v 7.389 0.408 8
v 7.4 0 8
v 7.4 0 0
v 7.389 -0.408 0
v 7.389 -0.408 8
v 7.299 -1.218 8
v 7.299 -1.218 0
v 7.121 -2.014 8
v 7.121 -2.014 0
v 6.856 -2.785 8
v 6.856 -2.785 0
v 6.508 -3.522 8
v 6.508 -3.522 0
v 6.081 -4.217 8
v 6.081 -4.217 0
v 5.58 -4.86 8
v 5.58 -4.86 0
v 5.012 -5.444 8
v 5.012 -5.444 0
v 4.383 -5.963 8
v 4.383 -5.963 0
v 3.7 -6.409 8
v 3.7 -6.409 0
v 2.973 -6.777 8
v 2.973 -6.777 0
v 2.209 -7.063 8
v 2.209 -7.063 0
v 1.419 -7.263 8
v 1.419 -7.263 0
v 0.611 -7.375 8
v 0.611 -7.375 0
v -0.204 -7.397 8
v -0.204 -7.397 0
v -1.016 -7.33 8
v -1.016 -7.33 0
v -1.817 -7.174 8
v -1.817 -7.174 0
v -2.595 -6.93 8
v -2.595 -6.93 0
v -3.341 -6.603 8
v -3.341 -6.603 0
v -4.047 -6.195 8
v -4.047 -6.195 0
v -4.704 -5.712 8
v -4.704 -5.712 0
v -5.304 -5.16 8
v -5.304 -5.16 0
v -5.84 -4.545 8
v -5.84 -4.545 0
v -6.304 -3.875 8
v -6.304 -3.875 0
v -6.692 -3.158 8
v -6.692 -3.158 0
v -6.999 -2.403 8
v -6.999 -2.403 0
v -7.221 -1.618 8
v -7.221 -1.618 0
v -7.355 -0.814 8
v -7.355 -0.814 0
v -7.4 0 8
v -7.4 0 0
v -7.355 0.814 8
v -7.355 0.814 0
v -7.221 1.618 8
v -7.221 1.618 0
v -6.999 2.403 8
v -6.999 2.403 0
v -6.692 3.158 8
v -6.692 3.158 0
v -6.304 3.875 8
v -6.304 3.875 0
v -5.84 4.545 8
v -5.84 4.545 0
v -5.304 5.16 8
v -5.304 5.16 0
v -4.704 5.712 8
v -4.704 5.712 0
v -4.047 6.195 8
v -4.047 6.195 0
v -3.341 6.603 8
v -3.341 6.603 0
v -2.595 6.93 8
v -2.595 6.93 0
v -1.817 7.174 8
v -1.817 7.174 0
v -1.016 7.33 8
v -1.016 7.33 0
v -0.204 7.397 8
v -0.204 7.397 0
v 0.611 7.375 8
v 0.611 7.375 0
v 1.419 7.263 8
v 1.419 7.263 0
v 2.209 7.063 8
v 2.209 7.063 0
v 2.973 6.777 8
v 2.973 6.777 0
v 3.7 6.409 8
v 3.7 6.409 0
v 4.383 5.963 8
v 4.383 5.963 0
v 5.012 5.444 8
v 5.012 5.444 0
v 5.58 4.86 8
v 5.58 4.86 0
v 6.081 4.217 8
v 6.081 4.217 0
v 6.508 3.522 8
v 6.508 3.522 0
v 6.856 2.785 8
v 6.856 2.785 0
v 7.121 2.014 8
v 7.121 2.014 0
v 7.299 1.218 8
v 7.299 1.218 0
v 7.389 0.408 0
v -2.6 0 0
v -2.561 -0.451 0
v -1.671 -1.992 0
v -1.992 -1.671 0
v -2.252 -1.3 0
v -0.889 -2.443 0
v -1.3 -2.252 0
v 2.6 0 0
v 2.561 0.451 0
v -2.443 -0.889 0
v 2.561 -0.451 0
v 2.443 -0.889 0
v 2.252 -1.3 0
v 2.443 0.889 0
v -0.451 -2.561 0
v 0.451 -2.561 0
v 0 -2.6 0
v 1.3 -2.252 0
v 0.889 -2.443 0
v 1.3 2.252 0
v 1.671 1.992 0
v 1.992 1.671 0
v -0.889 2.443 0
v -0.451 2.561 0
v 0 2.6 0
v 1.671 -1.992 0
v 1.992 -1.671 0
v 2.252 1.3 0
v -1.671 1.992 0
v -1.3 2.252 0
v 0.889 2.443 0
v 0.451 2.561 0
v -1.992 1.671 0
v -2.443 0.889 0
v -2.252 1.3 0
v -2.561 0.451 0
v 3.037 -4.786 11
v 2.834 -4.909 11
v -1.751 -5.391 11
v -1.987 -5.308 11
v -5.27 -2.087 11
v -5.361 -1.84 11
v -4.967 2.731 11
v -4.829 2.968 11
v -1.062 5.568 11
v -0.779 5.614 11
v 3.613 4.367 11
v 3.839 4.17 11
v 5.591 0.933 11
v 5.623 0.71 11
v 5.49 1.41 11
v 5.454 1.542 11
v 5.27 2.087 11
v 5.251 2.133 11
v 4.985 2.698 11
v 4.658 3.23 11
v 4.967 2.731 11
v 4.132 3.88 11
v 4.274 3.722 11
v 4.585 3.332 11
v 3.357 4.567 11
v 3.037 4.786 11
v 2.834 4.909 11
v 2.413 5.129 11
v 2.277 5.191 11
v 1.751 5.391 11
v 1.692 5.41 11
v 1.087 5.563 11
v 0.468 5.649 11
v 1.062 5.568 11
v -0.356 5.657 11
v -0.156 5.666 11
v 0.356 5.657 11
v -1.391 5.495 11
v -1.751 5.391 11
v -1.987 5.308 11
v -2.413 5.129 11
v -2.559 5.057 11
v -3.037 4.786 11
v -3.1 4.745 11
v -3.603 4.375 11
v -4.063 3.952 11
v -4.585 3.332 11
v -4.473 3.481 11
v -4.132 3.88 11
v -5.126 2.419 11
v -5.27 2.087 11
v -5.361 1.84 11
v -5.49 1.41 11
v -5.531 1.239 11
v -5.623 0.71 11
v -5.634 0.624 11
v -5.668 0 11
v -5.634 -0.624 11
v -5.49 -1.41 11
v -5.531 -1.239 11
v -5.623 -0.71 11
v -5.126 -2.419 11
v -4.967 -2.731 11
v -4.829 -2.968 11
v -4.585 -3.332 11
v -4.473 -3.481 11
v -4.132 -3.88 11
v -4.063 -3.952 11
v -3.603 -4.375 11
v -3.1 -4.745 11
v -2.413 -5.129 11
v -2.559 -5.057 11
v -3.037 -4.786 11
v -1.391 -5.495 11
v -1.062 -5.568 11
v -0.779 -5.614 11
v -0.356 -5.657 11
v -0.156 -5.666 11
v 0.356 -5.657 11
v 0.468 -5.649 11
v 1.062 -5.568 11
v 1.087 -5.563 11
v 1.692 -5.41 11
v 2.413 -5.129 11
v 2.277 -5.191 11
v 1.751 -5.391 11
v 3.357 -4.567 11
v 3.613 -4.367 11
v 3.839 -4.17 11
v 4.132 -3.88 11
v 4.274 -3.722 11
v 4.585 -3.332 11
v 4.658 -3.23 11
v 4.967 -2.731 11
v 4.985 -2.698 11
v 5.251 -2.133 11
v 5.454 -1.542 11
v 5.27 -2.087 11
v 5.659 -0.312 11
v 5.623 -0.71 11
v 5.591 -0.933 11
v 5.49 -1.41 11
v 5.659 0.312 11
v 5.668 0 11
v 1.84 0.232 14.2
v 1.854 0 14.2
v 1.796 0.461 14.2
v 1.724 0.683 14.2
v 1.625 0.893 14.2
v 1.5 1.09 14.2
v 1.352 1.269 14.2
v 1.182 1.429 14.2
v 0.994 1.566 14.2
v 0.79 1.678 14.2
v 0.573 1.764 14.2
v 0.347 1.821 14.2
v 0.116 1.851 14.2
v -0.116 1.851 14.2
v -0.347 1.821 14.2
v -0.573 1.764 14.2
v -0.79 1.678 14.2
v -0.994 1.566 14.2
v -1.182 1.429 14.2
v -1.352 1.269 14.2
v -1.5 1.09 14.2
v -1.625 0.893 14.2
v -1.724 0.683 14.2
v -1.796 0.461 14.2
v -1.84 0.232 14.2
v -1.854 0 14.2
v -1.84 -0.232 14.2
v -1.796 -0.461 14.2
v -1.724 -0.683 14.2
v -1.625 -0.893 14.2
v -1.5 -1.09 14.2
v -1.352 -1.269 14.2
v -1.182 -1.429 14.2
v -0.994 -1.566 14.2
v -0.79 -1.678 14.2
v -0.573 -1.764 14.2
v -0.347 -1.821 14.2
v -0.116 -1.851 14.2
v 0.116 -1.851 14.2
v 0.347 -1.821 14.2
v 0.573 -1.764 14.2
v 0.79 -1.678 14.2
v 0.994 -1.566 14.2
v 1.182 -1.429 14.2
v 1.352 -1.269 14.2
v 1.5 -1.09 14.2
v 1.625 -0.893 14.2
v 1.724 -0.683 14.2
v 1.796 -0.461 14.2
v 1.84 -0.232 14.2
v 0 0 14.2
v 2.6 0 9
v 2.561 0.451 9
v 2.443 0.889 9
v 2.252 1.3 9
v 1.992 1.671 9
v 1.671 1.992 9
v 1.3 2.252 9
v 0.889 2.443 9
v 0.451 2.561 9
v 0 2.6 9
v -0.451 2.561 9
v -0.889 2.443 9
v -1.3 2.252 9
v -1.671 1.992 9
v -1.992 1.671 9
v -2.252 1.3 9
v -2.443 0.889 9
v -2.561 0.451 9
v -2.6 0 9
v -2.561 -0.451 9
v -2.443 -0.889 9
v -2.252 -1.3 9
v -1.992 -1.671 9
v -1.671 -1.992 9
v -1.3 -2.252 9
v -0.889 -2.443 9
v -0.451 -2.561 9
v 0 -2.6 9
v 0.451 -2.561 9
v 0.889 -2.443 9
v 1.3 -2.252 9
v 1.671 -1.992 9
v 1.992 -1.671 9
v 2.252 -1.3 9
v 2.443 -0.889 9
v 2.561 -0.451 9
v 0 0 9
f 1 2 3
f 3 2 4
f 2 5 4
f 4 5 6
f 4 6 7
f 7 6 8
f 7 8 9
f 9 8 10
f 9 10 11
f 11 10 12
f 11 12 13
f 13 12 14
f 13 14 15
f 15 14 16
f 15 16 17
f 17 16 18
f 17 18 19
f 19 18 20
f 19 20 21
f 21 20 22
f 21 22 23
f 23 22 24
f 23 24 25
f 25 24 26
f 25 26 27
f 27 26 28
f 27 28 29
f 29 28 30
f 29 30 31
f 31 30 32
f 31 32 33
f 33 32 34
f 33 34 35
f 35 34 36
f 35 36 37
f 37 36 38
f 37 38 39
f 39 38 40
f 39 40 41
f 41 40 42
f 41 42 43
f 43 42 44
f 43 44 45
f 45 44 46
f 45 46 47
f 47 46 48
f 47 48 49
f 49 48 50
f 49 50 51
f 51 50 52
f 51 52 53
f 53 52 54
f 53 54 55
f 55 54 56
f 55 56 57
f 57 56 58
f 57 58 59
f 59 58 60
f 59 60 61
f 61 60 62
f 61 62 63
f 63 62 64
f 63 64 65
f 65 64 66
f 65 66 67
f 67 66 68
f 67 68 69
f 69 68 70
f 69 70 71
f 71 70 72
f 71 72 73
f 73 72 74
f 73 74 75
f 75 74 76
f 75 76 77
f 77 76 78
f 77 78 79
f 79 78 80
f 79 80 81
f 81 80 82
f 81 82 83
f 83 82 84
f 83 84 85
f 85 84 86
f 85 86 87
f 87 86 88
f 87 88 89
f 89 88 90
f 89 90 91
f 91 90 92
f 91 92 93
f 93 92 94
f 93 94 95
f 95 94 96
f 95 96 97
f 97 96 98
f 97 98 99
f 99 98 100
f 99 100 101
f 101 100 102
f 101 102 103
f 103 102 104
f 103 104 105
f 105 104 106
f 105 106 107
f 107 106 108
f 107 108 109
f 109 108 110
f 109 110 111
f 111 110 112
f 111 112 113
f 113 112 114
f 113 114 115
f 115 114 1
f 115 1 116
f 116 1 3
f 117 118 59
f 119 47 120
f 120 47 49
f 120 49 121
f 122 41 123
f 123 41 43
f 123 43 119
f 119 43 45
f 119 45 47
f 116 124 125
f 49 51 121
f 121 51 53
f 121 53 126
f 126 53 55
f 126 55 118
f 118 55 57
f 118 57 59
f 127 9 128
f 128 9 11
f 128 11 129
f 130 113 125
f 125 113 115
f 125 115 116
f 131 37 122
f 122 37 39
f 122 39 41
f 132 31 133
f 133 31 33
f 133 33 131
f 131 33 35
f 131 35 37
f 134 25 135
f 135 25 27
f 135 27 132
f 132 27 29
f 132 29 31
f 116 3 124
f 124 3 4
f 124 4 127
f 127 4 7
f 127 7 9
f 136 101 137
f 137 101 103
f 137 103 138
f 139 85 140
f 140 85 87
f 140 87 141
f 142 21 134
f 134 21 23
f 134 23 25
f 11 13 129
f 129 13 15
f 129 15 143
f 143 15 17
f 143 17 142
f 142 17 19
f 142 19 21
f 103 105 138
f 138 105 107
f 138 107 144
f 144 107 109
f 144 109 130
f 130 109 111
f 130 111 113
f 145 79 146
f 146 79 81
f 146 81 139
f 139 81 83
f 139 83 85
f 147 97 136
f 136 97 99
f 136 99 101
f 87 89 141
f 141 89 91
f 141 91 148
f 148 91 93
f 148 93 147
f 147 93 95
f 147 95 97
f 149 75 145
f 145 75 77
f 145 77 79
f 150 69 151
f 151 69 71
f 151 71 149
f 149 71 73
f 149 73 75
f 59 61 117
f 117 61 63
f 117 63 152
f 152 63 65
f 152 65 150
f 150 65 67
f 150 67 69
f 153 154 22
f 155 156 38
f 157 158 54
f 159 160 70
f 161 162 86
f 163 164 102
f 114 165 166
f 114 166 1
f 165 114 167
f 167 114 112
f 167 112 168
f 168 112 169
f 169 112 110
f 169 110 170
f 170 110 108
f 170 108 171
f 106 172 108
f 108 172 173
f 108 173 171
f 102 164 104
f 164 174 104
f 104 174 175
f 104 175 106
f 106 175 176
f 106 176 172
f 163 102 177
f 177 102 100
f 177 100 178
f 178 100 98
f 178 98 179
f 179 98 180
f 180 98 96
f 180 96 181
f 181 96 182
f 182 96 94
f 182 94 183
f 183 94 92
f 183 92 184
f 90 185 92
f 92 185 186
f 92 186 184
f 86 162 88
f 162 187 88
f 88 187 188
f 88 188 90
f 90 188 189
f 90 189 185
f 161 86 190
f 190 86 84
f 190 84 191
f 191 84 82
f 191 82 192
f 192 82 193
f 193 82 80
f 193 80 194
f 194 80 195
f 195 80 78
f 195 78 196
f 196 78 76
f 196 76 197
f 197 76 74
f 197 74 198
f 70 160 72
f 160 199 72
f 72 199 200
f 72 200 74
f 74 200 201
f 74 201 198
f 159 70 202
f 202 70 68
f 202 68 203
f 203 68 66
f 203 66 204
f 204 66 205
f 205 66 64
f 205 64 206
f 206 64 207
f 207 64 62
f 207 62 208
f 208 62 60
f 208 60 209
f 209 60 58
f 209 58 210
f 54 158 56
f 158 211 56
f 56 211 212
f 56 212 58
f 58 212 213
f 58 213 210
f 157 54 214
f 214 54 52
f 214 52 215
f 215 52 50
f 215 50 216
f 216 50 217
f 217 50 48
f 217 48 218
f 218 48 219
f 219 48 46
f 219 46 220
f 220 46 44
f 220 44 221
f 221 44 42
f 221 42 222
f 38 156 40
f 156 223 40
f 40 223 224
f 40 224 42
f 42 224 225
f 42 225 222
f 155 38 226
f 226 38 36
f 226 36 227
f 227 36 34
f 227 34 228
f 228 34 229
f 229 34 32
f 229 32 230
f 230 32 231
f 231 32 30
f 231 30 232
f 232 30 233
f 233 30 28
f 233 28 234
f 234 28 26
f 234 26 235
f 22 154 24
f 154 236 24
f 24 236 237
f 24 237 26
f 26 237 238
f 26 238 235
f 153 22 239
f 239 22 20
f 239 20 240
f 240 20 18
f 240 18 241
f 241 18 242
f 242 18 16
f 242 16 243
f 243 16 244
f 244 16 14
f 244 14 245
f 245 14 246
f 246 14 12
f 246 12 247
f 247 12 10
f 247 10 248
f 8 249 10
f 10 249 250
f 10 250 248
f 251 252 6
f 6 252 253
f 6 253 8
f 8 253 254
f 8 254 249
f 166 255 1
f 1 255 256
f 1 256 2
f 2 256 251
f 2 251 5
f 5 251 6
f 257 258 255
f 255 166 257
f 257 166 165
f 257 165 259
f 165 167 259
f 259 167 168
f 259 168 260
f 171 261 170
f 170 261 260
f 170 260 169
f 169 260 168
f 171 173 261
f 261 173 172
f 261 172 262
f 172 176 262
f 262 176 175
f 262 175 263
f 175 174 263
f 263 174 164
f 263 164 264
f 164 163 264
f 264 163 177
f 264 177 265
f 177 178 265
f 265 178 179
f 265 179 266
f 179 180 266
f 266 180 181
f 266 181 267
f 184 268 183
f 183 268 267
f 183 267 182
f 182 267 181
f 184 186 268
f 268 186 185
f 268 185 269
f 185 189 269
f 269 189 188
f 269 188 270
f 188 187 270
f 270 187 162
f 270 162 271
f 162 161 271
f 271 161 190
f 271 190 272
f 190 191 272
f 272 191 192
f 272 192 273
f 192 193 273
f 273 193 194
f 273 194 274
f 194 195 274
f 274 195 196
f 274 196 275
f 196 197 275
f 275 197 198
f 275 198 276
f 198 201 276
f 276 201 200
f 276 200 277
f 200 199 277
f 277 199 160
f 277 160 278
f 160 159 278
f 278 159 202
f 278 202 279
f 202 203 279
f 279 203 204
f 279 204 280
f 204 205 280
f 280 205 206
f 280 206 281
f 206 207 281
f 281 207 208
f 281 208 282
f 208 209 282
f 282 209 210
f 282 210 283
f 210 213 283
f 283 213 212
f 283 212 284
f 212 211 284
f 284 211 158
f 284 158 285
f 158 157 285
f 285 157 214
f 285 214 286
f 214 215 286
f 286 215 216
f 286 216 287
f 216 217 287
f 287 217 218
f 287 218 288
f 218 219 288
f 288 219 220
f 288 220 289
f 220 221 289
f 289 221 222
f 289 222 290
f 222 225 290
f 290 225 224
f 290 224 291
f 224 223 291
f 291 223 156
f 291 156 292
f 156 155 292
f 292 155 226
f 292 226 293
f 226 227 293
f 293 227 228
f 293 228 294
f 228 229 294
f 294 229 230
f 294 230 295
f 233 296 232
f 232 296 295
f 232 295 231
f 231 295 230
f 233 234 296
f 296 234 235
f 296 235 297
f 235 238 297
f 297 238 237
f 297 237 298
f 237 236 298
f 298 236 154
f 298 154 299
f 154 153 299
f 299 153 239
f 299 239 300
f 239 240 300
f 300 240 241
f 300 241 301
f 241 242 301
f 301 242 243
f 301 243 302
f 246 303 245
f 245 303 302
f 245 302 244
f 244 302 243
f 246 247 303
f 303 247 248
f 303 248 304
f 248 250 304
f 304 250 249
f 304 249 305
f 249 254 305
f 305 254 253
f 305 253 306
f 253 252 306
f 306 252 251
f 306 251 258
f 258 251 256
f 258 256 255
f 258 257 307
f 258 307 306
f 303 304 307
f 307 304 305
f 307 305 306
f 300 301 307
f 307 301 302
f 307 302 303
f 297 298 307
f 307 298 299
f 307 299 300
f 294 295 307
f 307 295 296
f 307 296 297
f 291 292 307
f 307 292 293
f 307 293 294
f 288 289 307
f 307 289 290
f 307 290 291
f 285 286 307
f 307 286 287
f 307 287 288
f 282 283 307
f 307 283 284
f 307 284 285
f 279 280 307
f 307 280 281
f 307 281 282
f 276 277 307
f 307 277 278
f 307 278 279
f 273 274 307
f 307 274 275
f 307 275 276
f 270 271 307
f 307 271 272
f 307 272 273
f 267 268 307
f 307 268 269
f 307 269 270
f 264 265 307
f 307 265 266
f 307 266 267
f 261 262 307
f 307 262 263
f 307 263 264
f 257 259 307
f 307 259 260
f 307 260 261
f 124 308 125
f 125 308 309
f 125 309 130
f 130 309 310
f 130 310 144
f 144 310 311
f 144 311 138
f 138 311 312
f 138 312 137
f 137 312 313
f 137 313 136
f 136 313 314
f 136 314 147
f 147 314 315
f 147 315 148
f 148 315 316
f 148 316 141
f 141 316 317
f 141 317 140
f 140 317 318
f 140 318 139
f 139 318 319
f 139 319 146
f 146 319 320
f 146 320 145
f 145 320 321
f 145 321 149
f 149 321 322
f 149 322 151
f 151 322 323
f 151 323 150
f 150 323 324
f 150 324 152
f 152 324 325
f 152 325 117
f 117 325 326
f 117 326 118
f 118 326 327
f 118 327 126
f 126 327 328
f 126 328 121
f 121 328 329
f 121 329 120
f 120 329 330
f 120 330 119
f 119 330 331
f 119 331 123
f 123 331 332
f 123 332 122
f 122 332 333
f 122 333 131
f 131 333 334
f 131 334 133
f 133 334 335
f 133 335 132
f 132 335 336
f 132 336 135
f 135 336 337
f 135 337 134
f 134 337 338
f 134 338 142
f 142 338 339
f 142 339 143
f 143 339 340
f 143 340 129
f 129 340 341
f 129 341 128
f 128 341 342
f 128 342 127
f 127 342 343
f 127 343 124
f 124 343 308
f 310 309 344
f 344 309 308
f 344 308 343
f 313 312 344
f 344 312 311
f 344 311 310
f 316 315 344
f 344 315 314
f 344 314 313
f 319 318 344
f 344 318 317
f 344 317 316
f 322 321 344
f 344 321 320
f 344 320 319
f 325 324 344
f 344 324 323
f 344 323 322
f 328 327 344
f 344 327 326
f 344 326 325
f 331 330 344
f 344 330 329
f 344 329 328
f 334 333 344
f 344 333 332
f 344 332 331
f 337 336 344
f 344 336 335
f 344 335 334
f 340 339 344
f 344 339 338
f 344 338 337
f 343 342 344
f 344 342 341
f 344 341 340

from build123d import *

# Parameters (mm, degrees)
SKETCH1_R           = 7.4
LENS_BODY_DEPTH     = 8
SKETCH2_R           = 7.4
LENS_SHOULDER_DEPTH = 3
LENS_SHOULDER_TAPER = 30
SKETCH3_R           = 5.667949192
LENS_CROWN_DEPTH    = 3.2
LENS_CROWN_TAPER    = 50
SKETCH4_R           = 2.6
LED_CAVITY_DEPTH    = 4.75


with BuildPart() as part:
    # Sketch1 → Lens_body (new body)
    with BuildSketch(Plane.XY):
        Circle(SKETCH1_R)
    extrude(amount=LENS_BODY_DEPTH)

    # Sketch2 → Lens_shoulder (add)
    with BuildSketch(Plane.XY.offset(8)):
        Circle(SKETCH2_R)
    extrude(amount=LENS_SHOULDER_DEPTH, taper=LENS_SHOULDER_TAPER)

    # Sketch3 → Lens_crown (add)
    with BuildSketch(Plane.XY.offset(11)):
        Circle(SKETCH3_R)
    extrude(amount=LENS_CROWN_DEPTH, taper=LENS_CROWN_TAPER)

    # Sketch4 → LED_cavity (cut, symmetric)
    with BuildSketch(Plane.XY.offset(4.25)):
        Circle(SKETCH4_R)
    extrude(amount=LED_CAVITY_DEPTH, both=True, mode=Mode.SUBTRACT)


solid = part.part
